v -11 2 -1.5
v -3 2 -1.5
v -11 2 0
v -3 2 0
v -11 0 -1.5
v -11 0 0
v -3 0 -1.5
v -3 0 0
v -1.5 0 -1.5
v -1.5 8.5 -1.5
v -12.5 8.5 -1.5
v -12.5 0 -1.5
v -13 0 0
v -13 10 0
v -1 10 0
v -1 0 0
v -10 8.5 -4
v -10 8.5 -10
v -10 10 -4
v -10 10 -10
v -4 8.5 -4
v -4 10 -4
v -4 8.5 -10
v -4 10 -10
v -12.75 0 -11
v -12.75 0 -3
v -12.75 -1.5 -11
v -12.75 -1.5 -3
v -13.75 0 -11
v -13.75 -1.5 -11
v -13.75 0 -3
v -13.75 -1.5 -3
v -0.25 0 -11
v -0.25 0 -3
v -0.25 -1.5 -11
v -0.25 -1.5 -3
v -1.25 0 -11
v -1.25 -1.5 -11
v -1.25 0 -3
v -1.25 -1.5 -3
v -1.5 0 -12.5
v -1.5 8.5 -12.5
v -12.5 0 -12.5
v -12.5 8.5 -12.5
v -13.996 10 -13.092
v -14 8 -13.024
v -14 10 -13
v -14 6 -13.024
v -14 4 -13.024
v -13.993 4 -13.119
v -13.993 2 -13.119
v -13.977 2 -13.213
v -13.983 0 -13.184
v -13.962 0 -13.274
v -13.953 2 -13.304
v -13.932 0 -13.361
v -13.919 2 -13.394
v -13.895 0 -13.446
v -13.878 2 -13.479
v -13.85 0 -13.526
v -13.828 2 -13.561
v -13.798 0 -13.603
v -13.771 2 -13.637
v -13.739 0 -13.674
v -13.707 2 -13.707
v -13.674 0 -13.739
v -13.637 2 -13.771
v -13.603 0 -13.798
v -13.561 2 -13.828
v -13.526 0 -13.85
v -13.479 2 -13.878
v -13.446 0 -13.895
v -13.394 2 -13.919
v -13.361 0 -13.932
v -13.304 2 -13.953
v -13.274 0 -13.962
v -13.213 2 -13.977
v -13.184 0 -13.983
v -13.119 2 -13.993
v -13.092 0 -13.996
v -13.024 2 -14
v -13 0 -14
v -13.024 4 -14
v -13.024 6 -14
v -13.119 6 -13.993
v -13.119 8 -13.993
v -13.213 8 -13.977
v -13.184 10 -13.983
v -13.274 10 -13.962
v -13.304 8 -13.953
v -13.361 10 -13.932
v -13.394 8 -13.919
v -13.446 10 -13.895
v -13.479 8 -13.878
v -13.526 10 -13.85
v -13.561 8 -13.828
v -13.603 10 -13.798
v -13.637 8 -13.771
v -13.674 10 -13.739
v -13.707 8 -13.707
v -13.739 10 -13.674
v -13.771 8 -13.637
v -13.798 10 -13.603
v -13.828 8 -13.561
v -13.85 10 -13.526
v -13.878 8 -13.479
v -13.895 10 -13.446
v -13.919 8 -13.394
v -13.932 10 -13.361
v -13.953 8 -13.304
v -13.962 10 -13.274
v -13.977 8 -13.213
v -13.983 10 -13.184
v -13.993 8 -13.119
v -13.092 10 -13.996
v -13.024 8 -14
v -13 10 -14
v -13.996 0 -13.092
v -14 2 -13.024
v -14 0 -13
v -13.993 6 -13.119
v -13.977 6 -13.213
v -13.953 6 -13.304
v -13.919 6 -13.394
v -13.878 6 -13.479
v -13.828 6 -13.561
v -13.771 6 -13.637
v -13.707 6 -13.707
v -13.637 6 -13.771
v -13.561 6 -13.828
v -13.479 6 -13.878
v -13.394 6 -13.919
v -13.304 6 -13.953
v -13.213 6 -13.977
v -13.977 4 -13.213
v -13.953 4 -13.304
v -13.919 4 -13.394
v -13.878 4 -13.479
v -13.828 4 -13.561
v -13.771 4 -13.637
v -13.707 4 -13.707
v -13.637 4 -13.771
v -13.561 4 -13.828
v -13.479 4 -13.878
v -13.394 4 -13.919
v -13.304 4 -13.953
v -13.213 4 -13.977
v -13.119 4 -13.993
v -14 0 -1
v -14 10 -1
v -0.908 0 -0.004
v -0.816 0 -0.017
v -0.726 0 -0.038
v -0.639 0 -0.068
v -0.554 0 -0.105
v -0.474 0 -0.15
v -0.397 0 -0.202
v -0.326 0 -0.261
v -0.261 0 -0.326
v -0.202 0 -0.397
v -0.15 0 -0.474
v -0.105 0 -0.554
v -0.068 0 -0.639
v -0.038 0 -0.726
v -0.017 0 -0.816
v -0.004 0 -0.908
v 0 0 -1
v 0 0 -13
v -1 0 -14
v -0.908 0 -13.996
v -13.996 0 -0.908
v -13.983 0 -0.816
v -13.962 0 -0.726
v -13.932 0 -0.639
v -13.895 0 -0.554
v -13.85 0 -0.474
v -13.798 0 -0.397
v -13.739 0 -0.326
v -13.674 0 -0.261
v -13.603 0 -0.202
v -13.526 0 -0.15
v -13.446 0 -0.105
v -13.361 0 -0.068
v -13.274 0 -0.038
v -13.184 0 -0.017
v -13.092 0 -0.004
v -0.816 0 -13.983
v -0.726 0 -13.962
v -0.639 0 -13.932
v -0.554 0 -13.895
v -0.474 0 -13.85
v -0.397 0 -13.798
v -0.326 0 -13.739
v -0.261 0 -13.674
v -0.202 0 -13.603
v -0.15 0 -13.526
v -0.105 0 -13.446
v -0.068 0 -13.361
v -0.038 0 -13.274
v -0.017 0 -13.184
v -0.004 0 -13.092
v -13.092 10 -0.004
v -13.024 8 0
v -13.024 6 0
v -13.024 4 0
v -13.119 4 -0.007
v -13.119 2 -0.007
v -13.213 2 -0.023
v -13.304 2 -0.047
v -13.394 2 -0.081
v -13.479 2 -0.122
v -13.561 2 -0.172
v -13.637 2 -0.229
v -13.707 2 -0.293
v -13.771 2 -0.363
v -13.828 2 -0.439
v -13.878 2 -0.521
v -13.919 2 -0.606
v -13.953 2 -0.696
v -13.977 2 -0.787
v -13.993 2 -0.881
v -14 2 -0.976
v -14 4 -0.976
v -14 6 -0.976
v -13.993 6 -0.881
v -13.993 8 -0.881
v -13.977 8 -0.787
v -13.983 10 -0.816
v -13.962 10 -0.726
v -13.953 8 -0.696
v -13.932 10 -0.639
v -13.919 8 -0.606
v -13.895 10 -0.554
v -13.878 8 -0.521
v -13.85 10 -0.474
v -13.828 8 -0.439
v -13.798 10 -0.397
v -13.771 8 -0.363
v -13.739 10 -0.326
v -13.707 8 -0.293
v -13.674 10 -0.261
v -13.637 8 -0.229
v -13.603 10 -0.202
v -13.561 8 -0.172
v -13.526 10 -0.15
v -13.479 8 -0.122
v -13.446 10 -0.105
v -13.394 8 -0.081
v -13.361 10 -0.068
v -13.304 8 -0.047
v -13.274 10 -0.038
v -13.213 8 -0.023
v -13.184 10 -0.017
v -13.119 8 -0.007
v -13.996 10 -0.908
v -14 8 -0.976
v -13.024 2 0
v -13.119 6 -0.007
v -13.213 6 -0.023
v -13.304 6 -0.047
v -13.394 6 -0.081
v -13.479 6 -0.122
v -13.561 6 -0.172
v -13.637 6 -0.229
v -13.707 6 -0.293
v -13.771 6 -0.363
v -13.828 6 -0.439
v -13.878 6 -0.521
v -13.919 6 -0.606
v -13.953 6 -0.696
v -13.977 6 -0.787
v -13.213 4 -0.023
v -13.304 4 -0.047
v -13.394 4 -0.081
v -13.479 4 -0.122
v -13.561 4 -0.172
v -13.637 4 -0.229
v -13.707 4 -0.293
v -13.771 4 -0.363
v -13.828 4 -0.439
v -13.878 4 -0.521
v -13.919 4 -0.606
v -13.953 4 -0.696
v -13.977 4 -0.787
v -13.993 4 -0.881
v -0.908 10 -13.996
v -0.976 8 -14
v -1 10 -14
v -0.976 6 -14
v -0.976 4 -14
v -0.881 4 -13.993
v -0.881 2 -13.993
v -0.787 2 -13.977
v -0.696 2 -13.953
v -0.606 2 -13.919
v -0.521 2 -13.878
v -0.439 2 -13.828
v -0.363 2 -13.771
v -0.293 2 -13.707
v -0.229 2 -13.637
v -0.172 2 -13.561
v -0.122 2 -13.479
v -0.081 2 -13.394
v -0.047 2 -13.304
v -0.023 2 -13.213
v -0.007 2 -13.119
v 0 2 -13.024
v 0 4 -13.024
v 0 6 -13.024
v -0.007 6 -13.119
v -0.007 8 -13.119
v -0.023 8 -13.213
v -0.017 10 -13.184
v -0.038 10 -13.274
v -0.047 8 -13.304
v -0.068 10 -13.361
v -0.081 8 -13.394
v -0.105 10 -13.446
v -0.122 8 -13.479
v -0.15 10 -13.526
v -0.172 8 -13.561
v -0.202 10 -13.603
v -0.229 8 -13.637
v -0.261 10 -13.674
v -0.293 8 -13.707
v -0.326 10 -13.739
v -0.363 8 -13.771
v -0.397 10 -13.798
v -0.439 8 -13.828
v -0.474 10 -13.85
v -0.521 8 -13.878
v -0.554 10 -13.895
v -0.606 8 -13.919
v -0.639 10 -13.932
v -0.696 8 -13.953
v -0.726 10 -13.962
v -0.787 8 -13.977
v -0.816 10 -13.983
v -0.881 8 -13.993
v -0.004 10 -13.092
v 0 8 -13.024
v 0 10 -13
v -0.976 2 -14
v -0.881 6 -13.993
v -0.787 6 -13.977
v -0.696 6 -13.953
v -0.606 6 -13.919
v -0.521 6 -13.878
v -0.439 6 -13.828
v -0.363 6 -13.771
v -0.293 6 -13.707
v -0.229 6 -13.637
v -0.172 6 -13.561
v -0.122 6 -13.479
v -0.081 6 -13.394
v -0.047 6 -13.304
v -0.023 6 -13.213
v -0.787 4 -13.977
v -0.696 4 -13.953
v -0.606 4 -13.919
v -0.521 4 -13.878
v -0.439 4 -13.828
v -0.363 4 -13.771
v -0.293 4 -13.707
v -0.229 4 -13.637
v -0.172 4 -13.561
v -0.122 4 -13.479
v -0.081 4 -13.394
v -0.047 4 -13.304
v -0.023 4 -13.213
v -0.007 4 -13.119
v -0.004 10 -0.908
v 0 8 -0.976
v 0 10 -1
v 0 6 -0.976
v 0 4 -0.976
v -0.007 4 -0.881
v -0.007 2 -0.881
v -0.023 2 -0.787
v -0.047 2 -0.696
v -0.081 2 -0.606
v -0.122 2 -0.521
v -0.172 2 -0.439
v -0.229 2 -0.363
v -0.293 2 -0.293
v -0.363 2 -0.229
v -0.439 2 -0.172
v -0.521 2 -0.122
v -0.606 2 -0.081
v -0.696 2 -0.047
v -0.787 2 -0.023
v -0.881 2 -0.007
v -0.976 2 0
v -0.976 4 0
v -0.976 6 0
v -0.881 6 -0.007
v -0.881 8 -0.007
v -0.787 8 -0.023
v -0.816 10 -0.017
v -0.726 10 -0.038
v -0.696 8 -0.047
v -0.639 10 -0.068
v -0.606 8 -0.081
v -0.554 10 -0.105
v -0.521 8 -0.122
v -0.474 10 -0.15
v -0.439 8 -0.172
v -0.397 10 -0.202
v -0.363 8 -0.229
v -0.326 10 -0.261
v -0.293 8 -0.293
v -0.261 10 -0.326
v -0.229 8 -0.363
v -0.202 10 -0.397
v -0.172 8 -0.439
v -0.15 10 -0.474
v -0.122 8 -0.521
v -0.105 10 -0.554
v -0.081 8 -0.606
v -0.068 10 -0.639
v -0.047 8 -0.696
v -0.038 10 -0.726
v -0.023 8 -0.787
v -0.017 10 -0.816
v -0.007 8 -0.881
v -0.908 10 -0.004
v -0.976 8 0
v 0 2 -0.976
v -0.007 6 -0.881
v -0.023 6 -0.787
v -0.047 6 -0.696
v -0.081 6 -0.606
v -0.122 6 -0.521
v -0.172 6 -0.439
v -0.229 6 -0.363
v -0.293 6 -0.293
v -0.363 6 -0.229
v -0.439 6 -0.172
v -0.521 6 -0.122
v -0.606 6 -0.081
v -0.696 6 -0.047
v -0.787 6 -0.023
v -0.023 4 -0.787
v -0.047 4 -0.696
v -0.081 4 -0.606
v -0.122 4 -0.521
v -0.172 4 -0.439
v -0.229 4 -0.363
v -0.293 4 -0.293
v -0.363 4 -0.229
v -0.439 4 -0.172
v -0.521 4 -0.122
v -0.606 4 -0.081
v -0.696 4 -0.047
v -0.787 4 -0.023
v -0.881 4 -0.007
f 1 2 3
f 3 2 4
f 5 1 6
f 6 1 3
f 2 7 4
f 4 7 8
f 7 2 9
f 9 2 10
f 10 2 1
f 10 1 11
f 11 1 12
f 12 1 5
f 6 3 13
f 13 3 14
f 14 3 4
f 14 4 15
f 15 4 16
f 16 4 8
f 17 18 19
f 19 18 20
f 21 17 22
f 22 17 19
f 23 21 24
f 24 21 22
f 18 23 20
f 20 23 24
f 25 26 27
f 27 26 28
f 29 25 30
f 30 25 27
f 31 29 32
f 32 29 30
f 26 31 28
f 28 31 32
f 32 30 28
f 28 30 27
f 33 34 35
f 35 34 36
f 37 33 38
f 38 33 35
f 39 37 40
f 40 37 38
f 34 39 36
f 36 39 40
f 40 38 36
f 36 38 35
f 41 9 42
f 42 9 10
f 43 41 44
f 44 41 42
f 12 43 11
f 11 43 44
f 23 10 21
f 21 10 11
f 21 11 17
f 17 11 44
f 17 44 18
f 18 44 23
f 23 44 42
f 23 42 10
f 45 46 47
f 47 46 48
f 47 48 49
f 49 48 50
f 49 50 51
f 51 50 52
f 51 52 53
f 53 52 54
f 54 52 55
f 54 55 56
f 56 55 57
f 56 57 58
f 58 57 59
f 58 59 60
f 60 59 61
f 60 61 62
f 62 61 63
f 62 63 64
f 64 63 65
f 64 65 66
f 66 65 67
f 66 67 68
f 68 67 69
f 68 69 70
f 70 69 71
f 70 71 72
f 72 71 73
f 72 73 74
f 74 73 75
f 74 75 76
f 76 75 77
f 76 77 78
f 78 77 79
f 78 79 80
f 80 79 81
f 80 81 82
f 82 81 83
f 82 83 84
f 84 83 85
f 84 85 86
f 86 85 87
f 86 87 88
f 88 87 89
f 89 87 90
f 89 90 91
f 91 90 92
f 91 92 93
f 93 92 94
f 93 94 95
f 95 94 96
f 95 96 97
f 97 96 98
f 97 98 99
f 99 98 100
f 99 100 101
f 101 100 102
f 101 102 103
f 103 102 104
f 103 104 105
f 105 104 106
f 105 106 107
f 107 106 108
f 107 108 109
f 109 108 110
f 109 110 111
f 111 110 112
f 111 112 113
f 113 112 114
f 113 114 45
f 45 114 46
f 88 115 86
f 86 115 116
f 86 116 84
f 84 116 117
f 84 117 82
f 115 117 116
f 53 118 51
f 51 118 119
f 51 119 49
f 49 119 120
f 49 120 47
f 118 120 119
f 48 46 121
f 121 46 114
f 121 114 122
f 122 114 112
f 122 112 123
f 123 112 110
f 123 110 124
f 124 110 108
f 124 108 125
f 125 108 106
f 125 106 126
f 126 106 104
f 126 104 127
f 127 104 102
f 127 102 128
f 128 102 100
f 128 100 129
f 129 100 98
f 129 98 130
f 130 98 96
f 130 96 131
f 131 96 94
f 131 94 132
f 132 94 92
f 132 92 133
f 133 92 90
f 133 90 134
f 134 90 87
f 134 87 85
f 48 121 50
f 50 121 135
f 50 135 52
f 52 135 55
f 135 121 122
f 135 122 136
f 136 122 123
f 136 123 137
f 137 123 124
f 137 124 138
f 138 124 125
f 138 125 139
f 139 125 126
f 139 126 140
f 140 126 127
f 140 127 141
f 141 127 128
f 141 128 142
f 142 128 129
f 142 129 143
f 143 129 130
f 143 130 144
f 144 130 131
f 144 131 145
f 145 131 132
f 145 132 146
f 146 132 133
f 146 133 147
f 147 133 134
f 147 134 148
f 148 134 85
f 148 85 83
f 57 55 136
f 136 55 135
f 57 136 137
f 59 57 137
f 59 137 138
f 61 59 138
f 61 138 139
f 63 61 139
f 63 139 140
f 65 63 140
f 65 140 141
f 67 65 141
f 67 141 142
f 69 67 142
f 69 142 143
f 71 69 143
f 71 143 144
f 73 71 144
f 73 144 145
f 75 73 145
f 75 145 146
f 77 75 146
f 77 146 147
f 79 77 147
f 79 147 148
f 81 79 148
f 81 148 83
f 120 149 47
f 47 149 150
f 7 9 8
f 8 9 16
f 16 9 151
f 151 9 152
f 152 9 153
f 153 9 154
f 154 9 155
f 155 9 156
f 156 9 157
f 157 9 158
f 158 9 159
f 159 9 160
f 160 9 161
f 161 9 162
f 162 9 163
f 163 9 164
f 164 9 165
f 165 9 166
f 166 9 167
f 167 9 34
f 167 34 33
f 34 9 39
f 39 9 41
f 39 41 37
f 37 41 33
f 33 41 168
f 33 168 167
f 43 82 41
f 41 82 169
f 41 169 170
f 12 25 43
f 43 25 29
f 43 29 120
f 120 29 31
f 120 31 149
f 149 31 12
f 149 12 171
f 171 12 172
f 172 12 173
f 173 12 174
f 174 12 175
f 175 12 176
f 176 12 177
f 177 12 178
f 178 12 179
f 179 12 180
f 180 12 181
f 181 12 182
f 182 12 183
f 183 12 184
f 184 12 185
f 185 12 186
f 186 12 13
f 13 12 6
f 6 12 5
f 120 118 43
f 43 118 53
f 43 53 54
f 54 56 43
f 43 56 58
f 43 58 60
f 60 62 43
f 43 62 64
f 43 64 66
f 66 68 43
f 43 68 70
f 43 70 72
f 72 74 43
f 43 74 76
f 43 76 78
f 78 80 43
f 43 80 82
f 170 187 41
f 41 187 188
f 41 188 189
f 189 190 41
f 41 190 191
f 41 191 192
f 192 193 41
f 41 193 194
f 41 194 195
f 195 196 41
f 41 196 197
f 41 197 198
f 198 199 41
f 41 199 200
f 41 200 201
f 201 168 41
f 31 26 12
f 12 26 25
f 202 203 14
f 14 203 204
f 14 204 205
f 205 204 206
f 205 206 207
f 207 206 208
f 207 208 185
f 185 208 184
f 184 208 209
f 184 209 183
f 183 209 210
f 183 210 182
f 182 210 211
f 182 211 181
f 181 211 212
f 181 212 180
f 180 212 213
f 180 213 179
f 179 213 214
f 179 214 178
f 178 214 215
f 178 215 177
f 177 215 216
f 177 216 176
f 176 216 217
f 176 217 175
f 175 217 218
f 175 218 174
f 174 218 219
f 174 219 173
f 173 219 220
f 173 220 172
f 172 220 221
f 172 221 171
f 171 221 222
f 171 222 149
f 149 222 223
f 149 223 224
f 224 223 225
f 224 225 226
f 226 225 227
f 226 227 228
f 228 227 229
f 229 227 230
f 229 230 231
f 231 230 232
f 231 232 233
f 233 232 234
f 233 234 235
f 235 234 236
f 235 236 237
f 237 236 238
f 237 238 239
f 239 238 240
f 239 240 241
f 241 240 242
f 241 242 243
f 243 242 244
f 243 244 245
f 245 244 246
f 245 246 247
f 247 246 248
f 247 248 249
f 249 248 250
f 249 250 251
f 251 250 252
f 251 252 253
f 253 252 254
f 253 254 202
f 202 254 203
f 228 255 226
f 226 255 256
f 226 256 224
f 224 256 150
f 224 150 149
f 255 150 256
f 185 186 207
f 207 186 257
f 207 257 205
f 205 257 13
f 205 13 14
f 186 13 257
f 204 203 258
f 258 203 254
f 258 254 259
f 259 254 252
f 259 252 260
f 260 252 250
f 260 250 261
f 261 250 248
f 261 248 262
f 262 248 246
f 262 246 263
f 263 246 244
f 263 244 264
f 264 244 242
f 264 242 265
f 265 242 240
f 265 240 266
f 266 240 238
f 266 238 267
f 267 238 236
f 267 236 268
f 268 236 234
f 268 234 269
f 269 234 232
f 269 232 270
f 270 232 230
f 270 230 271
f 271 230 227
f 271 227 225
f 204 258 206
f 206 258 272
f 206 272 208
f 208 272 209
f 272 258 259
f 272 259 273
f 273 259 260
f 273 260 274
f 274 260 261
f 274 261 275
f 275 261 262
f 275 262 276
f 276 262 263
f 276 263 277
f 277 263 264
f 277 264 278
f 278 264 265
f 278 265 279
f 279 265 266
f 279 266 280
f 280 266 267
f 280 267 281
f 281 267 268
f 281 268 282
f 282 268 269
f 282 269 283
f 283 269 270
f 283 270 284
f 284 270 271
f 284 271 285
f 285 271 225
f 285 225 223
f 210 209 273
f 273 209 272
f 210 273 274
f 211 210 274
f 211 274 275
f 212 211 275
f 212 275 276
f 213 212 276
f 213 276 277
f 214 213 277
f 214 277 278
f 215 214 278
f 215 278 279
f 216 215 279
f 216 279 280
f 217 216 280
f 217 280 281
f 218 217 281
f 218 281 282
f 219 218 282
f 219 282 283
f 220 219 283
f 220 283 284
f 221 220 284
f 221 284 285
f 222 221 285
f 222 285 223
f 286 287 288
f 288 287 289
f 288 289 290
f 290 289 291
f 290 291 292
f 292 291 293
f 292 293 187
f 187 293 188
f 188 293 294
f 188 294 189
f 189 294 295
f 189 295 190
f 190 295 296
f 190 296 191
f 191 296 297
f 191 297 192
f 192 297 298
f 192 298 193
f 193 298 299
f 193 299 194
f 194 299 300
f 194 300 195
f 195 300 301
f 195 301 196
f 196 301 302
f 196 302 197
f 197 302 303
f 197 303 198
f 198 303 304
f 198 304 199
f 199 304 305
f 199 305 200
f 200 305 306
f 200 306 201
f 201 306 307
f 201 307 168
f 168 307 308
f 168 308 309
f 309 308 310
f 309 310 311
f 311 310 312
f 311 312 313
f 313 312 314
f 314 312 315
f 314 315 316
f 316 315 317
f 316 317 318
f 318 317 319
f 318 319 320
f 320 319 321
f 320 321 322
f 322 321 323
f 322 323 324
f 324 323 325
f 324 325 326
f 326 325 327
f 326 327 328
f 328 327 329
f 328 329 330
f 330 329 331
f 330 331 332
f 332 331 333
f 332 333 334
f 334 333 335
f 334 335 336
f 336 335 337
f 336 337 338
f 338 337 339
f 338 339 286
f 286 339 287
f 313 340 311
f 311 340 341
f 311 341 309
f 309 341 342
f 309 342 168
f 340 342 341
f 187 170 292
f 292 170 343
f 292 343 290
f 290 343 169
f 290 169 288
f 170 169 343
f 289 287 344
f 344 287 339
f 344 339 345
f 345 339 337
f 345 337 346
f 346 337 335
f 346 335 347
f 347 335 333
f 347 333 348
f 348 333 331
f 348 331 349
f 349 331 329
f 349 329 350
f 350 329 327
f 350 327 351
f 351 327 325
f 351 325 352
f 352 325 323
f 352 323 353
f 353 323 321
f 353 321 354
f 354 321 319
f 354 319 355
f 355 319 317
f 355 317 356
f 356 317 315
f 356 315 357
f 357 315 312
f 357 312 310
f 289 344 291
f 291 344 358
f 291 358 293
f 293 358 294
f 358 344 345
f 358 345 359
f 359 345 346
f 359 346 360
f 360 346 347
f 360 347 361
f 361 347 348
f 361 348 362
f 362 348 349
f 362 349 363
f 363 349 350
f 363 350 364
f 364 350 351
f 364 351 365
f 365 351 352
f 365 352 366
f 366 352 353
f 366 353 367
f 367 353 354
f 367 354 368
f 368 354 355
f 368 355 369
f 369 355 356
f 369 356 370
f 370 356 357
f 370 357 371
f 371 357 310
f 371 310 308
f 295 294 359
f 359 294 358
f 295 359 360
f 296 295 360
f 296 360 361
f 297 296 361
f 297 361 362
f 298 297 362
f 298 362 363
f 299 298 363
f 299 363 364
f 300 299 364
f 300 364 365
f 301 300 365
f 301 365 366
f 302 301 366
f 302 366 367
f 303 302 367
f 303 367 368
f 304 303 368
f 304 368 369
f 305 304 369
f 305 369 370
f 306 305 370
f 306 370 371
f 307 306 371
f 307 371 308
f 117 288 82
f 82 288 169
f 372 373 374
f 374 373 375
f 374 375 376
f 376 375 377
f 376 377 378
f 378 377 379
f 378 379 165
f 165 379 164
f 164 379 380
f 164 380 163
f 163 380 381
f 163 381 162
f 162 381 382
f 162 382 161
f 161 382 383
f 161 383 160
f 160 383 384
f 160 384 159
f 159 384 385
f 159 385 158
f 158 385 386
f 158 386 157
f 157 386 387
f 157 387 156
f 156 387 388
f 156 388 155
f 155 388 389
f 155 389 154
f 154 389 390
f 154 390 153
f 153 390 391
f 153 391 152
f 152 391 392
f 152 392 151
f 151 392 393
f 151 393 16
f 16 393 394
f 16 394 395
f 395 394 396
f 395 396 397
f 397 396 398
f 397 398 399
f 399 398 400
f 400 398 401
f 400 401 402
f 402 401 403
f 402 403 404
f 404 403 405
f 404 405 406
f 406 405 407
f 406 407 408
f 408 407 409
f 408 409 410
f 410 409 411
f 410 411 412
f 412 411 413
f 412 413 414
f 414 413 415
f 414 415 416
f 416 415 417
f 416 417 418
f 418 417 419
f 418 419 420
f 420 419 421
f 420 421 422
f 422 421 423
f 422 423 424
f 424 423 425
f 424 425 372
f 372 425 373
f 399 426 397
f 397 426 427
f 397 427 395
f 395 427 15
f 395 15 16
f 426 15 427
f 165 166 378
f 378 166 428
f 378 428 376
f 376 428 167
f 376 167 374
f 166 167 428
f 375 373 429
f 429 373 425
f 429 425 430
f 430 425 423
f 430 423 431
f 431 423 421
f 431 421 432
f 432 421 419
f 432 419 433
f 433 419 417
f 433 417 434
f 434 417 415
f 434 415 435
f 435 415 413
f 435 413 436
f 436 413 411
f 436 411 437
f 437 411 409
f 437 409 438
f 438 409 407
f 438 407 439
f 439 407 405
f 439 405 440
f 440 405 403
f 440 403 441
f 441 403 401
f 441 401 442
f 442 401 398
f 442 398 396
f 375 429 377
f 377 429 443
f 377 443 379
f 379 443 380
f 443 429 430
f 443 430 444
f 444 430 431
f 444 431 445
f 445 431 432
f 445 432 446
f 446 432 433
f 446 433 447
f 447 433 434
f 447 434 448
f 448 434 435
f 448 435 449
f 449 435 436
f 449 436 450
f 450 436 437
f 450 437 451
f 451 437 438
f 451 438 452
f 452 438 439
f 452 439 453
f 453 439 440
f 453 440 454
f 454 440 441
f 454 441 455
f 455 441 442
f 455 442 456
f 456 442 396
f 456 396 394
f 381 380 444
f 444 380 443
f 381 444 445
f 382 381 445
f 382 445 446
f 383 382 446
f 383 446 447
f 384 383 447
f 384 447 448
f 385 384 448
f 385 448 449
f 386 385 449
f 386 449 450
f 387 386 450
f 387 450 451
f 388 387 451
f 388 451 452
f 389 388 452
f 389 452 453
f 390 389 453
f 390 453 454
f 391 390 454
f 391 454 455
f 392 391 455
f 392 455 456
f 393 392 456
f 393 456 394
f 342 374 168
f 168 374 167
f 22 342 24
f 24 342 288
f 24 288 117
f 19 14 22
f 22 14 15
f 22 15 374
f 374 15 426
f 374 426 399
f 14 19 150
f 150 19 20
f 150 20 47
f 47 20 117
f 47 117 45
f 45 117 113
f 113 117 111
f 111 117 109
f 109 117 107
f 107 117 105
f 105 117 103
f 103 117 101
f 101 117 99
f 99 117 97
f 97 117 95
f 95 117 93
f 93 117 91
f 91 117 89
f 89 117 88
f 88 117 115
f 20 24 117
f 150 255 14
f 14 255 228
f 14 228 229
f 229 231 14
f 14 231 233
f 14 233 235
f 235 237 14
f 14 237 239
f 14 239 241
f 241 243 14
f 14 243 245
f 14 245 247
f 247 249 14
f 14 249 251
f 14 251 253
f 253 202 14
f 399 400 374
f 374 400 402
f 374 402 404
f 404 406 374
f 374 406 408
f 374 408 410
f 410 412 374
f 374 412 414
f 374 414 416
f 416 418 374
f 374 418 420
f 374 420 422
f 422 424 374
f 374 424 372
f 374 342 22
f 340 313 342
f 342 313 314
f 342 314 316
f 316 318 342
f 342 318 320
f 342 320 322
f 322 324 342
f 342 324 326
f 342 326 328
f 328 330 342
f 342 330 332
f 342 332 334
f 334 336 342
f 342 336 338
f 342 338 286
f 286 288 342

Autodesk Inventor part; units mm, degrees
ref_plane "YZ Plane" through (0, 0, 0) normal (1, 0, 0) x (0, 1, 0)
ref_plane "XZ Plane" through (0, 0, 0) normal (0, 1, 0) x (-1, 0, 0)
ref_plane "XY Plane" through (0, 0, 0) normal (0, 0, 1) x (1, 0, 0)
sketch "Sketch1" plane through (0, 0, 0) normal (0, 1, 0) x (-1, 0, 0)
  line L0 (0, 0) -> (14, 0)
  line L1 (14, 0) -> (14, -14)
  line L2 (14, -14) -> (0, -14)
  line L3 (0, -14) -> (0, 0)
  dimension "d0" = 14
  dimension "d1" = 14
extrude "Extrusion1" add sketch "Sketch1" along normal blind 10
fillet "Fillet2" radius 1 4 edges at (0, 5, 0) (0, 5, -14) (-14, 5, 0) (-14, 5, -14)
shell "Shell1" thickness 1.5 removed faces 1 at (-9.3333, 0, -9)
sketch "Sketch3" plane through (0, 0, 0) normal (0, -1, 0) x (1, 0, 0)
  line L0 (-0.25, -11) -> (-1.25, -11)
  line L1 (-1.25, -11) -> (-1.25, -3)
  line L2 (-1.25, -3) -> (-0.25, -3)
  line L3 (-0.25, -3) -> (-0.25, -11)
  line L4 (0, -1) -> (0, -13) projected
  line L5 (-13, 0) -> (-1, 0) projected
  line L6 (-12.75, -11) -> (-13.75, -11)
  line L7 (-13.75, -11) -> (-13.75, -3)
  line L8 (-13.75, -3) -> (-12.75, -3)
  line L9 (-12.75, -3) -> (-12.75, -11)
  line L10 (-14, -13) -> (-14, -1) projected
  point P0 (0, 0)
  dimension "d13" = 8
  dimension "d14" = 1
  dimension "d15" = 0.25
  dimension "d16" = 3
  dimension "d17" = 1
  dimension "d18" = 8
  dimension "d19" = 0.25
  dimension "d20" = 3
extrude "Extrusion3" add sketch "Sketch3" along normal blind 1.5
sketch "Sketch4" plane through (0, 10, 0) normal (0, 1, 0) x (1, 0, 0)
  line L0 (-10, 10) -> (-4, 10)
  line L1 (-4, 10) -> (-4, 4)
  line L2 (-4, 4) -> (-10, 4)
  line L3 (-10, 4) -> (-10, 10)
  line L4 (-1, 14) -> (-13, 14) projected
  line L5 (0, 1) -> (0, 13) projected
  point P0 (0, 0)
  dimension "d23" = 6
  dimension "d24" = 6
  dimension "d25" = 4
  dimension "d26" = 4
extrude "Extrusion4" cut sketch "Sketch4" against normal blind 10
sketch "Sketch5" plane through (-13, 0, 0) normal (0, 0, 1) x (1, 0, 0)
  line L0 (12, 0) -> (0, 0) projected
  line L1 (2, 0) -> (10, 0)
  line L2 (10, 0) -> (10, 2)
  line L3 (10, 2) -> (2, 2)
  line L4 (2, 2) -> (2, 0)
  line L5 (-1, 10) -> (-1, 0) projected
  point P0 (13, 0)
  dimension "d29" = 2
  dimension "d30" = 8
  dimension "d31" = 3
extrude "Extrusion5" cut sketch "Sketch5" against normal blind 10
properties part number "Small_Button_Part_Two"
